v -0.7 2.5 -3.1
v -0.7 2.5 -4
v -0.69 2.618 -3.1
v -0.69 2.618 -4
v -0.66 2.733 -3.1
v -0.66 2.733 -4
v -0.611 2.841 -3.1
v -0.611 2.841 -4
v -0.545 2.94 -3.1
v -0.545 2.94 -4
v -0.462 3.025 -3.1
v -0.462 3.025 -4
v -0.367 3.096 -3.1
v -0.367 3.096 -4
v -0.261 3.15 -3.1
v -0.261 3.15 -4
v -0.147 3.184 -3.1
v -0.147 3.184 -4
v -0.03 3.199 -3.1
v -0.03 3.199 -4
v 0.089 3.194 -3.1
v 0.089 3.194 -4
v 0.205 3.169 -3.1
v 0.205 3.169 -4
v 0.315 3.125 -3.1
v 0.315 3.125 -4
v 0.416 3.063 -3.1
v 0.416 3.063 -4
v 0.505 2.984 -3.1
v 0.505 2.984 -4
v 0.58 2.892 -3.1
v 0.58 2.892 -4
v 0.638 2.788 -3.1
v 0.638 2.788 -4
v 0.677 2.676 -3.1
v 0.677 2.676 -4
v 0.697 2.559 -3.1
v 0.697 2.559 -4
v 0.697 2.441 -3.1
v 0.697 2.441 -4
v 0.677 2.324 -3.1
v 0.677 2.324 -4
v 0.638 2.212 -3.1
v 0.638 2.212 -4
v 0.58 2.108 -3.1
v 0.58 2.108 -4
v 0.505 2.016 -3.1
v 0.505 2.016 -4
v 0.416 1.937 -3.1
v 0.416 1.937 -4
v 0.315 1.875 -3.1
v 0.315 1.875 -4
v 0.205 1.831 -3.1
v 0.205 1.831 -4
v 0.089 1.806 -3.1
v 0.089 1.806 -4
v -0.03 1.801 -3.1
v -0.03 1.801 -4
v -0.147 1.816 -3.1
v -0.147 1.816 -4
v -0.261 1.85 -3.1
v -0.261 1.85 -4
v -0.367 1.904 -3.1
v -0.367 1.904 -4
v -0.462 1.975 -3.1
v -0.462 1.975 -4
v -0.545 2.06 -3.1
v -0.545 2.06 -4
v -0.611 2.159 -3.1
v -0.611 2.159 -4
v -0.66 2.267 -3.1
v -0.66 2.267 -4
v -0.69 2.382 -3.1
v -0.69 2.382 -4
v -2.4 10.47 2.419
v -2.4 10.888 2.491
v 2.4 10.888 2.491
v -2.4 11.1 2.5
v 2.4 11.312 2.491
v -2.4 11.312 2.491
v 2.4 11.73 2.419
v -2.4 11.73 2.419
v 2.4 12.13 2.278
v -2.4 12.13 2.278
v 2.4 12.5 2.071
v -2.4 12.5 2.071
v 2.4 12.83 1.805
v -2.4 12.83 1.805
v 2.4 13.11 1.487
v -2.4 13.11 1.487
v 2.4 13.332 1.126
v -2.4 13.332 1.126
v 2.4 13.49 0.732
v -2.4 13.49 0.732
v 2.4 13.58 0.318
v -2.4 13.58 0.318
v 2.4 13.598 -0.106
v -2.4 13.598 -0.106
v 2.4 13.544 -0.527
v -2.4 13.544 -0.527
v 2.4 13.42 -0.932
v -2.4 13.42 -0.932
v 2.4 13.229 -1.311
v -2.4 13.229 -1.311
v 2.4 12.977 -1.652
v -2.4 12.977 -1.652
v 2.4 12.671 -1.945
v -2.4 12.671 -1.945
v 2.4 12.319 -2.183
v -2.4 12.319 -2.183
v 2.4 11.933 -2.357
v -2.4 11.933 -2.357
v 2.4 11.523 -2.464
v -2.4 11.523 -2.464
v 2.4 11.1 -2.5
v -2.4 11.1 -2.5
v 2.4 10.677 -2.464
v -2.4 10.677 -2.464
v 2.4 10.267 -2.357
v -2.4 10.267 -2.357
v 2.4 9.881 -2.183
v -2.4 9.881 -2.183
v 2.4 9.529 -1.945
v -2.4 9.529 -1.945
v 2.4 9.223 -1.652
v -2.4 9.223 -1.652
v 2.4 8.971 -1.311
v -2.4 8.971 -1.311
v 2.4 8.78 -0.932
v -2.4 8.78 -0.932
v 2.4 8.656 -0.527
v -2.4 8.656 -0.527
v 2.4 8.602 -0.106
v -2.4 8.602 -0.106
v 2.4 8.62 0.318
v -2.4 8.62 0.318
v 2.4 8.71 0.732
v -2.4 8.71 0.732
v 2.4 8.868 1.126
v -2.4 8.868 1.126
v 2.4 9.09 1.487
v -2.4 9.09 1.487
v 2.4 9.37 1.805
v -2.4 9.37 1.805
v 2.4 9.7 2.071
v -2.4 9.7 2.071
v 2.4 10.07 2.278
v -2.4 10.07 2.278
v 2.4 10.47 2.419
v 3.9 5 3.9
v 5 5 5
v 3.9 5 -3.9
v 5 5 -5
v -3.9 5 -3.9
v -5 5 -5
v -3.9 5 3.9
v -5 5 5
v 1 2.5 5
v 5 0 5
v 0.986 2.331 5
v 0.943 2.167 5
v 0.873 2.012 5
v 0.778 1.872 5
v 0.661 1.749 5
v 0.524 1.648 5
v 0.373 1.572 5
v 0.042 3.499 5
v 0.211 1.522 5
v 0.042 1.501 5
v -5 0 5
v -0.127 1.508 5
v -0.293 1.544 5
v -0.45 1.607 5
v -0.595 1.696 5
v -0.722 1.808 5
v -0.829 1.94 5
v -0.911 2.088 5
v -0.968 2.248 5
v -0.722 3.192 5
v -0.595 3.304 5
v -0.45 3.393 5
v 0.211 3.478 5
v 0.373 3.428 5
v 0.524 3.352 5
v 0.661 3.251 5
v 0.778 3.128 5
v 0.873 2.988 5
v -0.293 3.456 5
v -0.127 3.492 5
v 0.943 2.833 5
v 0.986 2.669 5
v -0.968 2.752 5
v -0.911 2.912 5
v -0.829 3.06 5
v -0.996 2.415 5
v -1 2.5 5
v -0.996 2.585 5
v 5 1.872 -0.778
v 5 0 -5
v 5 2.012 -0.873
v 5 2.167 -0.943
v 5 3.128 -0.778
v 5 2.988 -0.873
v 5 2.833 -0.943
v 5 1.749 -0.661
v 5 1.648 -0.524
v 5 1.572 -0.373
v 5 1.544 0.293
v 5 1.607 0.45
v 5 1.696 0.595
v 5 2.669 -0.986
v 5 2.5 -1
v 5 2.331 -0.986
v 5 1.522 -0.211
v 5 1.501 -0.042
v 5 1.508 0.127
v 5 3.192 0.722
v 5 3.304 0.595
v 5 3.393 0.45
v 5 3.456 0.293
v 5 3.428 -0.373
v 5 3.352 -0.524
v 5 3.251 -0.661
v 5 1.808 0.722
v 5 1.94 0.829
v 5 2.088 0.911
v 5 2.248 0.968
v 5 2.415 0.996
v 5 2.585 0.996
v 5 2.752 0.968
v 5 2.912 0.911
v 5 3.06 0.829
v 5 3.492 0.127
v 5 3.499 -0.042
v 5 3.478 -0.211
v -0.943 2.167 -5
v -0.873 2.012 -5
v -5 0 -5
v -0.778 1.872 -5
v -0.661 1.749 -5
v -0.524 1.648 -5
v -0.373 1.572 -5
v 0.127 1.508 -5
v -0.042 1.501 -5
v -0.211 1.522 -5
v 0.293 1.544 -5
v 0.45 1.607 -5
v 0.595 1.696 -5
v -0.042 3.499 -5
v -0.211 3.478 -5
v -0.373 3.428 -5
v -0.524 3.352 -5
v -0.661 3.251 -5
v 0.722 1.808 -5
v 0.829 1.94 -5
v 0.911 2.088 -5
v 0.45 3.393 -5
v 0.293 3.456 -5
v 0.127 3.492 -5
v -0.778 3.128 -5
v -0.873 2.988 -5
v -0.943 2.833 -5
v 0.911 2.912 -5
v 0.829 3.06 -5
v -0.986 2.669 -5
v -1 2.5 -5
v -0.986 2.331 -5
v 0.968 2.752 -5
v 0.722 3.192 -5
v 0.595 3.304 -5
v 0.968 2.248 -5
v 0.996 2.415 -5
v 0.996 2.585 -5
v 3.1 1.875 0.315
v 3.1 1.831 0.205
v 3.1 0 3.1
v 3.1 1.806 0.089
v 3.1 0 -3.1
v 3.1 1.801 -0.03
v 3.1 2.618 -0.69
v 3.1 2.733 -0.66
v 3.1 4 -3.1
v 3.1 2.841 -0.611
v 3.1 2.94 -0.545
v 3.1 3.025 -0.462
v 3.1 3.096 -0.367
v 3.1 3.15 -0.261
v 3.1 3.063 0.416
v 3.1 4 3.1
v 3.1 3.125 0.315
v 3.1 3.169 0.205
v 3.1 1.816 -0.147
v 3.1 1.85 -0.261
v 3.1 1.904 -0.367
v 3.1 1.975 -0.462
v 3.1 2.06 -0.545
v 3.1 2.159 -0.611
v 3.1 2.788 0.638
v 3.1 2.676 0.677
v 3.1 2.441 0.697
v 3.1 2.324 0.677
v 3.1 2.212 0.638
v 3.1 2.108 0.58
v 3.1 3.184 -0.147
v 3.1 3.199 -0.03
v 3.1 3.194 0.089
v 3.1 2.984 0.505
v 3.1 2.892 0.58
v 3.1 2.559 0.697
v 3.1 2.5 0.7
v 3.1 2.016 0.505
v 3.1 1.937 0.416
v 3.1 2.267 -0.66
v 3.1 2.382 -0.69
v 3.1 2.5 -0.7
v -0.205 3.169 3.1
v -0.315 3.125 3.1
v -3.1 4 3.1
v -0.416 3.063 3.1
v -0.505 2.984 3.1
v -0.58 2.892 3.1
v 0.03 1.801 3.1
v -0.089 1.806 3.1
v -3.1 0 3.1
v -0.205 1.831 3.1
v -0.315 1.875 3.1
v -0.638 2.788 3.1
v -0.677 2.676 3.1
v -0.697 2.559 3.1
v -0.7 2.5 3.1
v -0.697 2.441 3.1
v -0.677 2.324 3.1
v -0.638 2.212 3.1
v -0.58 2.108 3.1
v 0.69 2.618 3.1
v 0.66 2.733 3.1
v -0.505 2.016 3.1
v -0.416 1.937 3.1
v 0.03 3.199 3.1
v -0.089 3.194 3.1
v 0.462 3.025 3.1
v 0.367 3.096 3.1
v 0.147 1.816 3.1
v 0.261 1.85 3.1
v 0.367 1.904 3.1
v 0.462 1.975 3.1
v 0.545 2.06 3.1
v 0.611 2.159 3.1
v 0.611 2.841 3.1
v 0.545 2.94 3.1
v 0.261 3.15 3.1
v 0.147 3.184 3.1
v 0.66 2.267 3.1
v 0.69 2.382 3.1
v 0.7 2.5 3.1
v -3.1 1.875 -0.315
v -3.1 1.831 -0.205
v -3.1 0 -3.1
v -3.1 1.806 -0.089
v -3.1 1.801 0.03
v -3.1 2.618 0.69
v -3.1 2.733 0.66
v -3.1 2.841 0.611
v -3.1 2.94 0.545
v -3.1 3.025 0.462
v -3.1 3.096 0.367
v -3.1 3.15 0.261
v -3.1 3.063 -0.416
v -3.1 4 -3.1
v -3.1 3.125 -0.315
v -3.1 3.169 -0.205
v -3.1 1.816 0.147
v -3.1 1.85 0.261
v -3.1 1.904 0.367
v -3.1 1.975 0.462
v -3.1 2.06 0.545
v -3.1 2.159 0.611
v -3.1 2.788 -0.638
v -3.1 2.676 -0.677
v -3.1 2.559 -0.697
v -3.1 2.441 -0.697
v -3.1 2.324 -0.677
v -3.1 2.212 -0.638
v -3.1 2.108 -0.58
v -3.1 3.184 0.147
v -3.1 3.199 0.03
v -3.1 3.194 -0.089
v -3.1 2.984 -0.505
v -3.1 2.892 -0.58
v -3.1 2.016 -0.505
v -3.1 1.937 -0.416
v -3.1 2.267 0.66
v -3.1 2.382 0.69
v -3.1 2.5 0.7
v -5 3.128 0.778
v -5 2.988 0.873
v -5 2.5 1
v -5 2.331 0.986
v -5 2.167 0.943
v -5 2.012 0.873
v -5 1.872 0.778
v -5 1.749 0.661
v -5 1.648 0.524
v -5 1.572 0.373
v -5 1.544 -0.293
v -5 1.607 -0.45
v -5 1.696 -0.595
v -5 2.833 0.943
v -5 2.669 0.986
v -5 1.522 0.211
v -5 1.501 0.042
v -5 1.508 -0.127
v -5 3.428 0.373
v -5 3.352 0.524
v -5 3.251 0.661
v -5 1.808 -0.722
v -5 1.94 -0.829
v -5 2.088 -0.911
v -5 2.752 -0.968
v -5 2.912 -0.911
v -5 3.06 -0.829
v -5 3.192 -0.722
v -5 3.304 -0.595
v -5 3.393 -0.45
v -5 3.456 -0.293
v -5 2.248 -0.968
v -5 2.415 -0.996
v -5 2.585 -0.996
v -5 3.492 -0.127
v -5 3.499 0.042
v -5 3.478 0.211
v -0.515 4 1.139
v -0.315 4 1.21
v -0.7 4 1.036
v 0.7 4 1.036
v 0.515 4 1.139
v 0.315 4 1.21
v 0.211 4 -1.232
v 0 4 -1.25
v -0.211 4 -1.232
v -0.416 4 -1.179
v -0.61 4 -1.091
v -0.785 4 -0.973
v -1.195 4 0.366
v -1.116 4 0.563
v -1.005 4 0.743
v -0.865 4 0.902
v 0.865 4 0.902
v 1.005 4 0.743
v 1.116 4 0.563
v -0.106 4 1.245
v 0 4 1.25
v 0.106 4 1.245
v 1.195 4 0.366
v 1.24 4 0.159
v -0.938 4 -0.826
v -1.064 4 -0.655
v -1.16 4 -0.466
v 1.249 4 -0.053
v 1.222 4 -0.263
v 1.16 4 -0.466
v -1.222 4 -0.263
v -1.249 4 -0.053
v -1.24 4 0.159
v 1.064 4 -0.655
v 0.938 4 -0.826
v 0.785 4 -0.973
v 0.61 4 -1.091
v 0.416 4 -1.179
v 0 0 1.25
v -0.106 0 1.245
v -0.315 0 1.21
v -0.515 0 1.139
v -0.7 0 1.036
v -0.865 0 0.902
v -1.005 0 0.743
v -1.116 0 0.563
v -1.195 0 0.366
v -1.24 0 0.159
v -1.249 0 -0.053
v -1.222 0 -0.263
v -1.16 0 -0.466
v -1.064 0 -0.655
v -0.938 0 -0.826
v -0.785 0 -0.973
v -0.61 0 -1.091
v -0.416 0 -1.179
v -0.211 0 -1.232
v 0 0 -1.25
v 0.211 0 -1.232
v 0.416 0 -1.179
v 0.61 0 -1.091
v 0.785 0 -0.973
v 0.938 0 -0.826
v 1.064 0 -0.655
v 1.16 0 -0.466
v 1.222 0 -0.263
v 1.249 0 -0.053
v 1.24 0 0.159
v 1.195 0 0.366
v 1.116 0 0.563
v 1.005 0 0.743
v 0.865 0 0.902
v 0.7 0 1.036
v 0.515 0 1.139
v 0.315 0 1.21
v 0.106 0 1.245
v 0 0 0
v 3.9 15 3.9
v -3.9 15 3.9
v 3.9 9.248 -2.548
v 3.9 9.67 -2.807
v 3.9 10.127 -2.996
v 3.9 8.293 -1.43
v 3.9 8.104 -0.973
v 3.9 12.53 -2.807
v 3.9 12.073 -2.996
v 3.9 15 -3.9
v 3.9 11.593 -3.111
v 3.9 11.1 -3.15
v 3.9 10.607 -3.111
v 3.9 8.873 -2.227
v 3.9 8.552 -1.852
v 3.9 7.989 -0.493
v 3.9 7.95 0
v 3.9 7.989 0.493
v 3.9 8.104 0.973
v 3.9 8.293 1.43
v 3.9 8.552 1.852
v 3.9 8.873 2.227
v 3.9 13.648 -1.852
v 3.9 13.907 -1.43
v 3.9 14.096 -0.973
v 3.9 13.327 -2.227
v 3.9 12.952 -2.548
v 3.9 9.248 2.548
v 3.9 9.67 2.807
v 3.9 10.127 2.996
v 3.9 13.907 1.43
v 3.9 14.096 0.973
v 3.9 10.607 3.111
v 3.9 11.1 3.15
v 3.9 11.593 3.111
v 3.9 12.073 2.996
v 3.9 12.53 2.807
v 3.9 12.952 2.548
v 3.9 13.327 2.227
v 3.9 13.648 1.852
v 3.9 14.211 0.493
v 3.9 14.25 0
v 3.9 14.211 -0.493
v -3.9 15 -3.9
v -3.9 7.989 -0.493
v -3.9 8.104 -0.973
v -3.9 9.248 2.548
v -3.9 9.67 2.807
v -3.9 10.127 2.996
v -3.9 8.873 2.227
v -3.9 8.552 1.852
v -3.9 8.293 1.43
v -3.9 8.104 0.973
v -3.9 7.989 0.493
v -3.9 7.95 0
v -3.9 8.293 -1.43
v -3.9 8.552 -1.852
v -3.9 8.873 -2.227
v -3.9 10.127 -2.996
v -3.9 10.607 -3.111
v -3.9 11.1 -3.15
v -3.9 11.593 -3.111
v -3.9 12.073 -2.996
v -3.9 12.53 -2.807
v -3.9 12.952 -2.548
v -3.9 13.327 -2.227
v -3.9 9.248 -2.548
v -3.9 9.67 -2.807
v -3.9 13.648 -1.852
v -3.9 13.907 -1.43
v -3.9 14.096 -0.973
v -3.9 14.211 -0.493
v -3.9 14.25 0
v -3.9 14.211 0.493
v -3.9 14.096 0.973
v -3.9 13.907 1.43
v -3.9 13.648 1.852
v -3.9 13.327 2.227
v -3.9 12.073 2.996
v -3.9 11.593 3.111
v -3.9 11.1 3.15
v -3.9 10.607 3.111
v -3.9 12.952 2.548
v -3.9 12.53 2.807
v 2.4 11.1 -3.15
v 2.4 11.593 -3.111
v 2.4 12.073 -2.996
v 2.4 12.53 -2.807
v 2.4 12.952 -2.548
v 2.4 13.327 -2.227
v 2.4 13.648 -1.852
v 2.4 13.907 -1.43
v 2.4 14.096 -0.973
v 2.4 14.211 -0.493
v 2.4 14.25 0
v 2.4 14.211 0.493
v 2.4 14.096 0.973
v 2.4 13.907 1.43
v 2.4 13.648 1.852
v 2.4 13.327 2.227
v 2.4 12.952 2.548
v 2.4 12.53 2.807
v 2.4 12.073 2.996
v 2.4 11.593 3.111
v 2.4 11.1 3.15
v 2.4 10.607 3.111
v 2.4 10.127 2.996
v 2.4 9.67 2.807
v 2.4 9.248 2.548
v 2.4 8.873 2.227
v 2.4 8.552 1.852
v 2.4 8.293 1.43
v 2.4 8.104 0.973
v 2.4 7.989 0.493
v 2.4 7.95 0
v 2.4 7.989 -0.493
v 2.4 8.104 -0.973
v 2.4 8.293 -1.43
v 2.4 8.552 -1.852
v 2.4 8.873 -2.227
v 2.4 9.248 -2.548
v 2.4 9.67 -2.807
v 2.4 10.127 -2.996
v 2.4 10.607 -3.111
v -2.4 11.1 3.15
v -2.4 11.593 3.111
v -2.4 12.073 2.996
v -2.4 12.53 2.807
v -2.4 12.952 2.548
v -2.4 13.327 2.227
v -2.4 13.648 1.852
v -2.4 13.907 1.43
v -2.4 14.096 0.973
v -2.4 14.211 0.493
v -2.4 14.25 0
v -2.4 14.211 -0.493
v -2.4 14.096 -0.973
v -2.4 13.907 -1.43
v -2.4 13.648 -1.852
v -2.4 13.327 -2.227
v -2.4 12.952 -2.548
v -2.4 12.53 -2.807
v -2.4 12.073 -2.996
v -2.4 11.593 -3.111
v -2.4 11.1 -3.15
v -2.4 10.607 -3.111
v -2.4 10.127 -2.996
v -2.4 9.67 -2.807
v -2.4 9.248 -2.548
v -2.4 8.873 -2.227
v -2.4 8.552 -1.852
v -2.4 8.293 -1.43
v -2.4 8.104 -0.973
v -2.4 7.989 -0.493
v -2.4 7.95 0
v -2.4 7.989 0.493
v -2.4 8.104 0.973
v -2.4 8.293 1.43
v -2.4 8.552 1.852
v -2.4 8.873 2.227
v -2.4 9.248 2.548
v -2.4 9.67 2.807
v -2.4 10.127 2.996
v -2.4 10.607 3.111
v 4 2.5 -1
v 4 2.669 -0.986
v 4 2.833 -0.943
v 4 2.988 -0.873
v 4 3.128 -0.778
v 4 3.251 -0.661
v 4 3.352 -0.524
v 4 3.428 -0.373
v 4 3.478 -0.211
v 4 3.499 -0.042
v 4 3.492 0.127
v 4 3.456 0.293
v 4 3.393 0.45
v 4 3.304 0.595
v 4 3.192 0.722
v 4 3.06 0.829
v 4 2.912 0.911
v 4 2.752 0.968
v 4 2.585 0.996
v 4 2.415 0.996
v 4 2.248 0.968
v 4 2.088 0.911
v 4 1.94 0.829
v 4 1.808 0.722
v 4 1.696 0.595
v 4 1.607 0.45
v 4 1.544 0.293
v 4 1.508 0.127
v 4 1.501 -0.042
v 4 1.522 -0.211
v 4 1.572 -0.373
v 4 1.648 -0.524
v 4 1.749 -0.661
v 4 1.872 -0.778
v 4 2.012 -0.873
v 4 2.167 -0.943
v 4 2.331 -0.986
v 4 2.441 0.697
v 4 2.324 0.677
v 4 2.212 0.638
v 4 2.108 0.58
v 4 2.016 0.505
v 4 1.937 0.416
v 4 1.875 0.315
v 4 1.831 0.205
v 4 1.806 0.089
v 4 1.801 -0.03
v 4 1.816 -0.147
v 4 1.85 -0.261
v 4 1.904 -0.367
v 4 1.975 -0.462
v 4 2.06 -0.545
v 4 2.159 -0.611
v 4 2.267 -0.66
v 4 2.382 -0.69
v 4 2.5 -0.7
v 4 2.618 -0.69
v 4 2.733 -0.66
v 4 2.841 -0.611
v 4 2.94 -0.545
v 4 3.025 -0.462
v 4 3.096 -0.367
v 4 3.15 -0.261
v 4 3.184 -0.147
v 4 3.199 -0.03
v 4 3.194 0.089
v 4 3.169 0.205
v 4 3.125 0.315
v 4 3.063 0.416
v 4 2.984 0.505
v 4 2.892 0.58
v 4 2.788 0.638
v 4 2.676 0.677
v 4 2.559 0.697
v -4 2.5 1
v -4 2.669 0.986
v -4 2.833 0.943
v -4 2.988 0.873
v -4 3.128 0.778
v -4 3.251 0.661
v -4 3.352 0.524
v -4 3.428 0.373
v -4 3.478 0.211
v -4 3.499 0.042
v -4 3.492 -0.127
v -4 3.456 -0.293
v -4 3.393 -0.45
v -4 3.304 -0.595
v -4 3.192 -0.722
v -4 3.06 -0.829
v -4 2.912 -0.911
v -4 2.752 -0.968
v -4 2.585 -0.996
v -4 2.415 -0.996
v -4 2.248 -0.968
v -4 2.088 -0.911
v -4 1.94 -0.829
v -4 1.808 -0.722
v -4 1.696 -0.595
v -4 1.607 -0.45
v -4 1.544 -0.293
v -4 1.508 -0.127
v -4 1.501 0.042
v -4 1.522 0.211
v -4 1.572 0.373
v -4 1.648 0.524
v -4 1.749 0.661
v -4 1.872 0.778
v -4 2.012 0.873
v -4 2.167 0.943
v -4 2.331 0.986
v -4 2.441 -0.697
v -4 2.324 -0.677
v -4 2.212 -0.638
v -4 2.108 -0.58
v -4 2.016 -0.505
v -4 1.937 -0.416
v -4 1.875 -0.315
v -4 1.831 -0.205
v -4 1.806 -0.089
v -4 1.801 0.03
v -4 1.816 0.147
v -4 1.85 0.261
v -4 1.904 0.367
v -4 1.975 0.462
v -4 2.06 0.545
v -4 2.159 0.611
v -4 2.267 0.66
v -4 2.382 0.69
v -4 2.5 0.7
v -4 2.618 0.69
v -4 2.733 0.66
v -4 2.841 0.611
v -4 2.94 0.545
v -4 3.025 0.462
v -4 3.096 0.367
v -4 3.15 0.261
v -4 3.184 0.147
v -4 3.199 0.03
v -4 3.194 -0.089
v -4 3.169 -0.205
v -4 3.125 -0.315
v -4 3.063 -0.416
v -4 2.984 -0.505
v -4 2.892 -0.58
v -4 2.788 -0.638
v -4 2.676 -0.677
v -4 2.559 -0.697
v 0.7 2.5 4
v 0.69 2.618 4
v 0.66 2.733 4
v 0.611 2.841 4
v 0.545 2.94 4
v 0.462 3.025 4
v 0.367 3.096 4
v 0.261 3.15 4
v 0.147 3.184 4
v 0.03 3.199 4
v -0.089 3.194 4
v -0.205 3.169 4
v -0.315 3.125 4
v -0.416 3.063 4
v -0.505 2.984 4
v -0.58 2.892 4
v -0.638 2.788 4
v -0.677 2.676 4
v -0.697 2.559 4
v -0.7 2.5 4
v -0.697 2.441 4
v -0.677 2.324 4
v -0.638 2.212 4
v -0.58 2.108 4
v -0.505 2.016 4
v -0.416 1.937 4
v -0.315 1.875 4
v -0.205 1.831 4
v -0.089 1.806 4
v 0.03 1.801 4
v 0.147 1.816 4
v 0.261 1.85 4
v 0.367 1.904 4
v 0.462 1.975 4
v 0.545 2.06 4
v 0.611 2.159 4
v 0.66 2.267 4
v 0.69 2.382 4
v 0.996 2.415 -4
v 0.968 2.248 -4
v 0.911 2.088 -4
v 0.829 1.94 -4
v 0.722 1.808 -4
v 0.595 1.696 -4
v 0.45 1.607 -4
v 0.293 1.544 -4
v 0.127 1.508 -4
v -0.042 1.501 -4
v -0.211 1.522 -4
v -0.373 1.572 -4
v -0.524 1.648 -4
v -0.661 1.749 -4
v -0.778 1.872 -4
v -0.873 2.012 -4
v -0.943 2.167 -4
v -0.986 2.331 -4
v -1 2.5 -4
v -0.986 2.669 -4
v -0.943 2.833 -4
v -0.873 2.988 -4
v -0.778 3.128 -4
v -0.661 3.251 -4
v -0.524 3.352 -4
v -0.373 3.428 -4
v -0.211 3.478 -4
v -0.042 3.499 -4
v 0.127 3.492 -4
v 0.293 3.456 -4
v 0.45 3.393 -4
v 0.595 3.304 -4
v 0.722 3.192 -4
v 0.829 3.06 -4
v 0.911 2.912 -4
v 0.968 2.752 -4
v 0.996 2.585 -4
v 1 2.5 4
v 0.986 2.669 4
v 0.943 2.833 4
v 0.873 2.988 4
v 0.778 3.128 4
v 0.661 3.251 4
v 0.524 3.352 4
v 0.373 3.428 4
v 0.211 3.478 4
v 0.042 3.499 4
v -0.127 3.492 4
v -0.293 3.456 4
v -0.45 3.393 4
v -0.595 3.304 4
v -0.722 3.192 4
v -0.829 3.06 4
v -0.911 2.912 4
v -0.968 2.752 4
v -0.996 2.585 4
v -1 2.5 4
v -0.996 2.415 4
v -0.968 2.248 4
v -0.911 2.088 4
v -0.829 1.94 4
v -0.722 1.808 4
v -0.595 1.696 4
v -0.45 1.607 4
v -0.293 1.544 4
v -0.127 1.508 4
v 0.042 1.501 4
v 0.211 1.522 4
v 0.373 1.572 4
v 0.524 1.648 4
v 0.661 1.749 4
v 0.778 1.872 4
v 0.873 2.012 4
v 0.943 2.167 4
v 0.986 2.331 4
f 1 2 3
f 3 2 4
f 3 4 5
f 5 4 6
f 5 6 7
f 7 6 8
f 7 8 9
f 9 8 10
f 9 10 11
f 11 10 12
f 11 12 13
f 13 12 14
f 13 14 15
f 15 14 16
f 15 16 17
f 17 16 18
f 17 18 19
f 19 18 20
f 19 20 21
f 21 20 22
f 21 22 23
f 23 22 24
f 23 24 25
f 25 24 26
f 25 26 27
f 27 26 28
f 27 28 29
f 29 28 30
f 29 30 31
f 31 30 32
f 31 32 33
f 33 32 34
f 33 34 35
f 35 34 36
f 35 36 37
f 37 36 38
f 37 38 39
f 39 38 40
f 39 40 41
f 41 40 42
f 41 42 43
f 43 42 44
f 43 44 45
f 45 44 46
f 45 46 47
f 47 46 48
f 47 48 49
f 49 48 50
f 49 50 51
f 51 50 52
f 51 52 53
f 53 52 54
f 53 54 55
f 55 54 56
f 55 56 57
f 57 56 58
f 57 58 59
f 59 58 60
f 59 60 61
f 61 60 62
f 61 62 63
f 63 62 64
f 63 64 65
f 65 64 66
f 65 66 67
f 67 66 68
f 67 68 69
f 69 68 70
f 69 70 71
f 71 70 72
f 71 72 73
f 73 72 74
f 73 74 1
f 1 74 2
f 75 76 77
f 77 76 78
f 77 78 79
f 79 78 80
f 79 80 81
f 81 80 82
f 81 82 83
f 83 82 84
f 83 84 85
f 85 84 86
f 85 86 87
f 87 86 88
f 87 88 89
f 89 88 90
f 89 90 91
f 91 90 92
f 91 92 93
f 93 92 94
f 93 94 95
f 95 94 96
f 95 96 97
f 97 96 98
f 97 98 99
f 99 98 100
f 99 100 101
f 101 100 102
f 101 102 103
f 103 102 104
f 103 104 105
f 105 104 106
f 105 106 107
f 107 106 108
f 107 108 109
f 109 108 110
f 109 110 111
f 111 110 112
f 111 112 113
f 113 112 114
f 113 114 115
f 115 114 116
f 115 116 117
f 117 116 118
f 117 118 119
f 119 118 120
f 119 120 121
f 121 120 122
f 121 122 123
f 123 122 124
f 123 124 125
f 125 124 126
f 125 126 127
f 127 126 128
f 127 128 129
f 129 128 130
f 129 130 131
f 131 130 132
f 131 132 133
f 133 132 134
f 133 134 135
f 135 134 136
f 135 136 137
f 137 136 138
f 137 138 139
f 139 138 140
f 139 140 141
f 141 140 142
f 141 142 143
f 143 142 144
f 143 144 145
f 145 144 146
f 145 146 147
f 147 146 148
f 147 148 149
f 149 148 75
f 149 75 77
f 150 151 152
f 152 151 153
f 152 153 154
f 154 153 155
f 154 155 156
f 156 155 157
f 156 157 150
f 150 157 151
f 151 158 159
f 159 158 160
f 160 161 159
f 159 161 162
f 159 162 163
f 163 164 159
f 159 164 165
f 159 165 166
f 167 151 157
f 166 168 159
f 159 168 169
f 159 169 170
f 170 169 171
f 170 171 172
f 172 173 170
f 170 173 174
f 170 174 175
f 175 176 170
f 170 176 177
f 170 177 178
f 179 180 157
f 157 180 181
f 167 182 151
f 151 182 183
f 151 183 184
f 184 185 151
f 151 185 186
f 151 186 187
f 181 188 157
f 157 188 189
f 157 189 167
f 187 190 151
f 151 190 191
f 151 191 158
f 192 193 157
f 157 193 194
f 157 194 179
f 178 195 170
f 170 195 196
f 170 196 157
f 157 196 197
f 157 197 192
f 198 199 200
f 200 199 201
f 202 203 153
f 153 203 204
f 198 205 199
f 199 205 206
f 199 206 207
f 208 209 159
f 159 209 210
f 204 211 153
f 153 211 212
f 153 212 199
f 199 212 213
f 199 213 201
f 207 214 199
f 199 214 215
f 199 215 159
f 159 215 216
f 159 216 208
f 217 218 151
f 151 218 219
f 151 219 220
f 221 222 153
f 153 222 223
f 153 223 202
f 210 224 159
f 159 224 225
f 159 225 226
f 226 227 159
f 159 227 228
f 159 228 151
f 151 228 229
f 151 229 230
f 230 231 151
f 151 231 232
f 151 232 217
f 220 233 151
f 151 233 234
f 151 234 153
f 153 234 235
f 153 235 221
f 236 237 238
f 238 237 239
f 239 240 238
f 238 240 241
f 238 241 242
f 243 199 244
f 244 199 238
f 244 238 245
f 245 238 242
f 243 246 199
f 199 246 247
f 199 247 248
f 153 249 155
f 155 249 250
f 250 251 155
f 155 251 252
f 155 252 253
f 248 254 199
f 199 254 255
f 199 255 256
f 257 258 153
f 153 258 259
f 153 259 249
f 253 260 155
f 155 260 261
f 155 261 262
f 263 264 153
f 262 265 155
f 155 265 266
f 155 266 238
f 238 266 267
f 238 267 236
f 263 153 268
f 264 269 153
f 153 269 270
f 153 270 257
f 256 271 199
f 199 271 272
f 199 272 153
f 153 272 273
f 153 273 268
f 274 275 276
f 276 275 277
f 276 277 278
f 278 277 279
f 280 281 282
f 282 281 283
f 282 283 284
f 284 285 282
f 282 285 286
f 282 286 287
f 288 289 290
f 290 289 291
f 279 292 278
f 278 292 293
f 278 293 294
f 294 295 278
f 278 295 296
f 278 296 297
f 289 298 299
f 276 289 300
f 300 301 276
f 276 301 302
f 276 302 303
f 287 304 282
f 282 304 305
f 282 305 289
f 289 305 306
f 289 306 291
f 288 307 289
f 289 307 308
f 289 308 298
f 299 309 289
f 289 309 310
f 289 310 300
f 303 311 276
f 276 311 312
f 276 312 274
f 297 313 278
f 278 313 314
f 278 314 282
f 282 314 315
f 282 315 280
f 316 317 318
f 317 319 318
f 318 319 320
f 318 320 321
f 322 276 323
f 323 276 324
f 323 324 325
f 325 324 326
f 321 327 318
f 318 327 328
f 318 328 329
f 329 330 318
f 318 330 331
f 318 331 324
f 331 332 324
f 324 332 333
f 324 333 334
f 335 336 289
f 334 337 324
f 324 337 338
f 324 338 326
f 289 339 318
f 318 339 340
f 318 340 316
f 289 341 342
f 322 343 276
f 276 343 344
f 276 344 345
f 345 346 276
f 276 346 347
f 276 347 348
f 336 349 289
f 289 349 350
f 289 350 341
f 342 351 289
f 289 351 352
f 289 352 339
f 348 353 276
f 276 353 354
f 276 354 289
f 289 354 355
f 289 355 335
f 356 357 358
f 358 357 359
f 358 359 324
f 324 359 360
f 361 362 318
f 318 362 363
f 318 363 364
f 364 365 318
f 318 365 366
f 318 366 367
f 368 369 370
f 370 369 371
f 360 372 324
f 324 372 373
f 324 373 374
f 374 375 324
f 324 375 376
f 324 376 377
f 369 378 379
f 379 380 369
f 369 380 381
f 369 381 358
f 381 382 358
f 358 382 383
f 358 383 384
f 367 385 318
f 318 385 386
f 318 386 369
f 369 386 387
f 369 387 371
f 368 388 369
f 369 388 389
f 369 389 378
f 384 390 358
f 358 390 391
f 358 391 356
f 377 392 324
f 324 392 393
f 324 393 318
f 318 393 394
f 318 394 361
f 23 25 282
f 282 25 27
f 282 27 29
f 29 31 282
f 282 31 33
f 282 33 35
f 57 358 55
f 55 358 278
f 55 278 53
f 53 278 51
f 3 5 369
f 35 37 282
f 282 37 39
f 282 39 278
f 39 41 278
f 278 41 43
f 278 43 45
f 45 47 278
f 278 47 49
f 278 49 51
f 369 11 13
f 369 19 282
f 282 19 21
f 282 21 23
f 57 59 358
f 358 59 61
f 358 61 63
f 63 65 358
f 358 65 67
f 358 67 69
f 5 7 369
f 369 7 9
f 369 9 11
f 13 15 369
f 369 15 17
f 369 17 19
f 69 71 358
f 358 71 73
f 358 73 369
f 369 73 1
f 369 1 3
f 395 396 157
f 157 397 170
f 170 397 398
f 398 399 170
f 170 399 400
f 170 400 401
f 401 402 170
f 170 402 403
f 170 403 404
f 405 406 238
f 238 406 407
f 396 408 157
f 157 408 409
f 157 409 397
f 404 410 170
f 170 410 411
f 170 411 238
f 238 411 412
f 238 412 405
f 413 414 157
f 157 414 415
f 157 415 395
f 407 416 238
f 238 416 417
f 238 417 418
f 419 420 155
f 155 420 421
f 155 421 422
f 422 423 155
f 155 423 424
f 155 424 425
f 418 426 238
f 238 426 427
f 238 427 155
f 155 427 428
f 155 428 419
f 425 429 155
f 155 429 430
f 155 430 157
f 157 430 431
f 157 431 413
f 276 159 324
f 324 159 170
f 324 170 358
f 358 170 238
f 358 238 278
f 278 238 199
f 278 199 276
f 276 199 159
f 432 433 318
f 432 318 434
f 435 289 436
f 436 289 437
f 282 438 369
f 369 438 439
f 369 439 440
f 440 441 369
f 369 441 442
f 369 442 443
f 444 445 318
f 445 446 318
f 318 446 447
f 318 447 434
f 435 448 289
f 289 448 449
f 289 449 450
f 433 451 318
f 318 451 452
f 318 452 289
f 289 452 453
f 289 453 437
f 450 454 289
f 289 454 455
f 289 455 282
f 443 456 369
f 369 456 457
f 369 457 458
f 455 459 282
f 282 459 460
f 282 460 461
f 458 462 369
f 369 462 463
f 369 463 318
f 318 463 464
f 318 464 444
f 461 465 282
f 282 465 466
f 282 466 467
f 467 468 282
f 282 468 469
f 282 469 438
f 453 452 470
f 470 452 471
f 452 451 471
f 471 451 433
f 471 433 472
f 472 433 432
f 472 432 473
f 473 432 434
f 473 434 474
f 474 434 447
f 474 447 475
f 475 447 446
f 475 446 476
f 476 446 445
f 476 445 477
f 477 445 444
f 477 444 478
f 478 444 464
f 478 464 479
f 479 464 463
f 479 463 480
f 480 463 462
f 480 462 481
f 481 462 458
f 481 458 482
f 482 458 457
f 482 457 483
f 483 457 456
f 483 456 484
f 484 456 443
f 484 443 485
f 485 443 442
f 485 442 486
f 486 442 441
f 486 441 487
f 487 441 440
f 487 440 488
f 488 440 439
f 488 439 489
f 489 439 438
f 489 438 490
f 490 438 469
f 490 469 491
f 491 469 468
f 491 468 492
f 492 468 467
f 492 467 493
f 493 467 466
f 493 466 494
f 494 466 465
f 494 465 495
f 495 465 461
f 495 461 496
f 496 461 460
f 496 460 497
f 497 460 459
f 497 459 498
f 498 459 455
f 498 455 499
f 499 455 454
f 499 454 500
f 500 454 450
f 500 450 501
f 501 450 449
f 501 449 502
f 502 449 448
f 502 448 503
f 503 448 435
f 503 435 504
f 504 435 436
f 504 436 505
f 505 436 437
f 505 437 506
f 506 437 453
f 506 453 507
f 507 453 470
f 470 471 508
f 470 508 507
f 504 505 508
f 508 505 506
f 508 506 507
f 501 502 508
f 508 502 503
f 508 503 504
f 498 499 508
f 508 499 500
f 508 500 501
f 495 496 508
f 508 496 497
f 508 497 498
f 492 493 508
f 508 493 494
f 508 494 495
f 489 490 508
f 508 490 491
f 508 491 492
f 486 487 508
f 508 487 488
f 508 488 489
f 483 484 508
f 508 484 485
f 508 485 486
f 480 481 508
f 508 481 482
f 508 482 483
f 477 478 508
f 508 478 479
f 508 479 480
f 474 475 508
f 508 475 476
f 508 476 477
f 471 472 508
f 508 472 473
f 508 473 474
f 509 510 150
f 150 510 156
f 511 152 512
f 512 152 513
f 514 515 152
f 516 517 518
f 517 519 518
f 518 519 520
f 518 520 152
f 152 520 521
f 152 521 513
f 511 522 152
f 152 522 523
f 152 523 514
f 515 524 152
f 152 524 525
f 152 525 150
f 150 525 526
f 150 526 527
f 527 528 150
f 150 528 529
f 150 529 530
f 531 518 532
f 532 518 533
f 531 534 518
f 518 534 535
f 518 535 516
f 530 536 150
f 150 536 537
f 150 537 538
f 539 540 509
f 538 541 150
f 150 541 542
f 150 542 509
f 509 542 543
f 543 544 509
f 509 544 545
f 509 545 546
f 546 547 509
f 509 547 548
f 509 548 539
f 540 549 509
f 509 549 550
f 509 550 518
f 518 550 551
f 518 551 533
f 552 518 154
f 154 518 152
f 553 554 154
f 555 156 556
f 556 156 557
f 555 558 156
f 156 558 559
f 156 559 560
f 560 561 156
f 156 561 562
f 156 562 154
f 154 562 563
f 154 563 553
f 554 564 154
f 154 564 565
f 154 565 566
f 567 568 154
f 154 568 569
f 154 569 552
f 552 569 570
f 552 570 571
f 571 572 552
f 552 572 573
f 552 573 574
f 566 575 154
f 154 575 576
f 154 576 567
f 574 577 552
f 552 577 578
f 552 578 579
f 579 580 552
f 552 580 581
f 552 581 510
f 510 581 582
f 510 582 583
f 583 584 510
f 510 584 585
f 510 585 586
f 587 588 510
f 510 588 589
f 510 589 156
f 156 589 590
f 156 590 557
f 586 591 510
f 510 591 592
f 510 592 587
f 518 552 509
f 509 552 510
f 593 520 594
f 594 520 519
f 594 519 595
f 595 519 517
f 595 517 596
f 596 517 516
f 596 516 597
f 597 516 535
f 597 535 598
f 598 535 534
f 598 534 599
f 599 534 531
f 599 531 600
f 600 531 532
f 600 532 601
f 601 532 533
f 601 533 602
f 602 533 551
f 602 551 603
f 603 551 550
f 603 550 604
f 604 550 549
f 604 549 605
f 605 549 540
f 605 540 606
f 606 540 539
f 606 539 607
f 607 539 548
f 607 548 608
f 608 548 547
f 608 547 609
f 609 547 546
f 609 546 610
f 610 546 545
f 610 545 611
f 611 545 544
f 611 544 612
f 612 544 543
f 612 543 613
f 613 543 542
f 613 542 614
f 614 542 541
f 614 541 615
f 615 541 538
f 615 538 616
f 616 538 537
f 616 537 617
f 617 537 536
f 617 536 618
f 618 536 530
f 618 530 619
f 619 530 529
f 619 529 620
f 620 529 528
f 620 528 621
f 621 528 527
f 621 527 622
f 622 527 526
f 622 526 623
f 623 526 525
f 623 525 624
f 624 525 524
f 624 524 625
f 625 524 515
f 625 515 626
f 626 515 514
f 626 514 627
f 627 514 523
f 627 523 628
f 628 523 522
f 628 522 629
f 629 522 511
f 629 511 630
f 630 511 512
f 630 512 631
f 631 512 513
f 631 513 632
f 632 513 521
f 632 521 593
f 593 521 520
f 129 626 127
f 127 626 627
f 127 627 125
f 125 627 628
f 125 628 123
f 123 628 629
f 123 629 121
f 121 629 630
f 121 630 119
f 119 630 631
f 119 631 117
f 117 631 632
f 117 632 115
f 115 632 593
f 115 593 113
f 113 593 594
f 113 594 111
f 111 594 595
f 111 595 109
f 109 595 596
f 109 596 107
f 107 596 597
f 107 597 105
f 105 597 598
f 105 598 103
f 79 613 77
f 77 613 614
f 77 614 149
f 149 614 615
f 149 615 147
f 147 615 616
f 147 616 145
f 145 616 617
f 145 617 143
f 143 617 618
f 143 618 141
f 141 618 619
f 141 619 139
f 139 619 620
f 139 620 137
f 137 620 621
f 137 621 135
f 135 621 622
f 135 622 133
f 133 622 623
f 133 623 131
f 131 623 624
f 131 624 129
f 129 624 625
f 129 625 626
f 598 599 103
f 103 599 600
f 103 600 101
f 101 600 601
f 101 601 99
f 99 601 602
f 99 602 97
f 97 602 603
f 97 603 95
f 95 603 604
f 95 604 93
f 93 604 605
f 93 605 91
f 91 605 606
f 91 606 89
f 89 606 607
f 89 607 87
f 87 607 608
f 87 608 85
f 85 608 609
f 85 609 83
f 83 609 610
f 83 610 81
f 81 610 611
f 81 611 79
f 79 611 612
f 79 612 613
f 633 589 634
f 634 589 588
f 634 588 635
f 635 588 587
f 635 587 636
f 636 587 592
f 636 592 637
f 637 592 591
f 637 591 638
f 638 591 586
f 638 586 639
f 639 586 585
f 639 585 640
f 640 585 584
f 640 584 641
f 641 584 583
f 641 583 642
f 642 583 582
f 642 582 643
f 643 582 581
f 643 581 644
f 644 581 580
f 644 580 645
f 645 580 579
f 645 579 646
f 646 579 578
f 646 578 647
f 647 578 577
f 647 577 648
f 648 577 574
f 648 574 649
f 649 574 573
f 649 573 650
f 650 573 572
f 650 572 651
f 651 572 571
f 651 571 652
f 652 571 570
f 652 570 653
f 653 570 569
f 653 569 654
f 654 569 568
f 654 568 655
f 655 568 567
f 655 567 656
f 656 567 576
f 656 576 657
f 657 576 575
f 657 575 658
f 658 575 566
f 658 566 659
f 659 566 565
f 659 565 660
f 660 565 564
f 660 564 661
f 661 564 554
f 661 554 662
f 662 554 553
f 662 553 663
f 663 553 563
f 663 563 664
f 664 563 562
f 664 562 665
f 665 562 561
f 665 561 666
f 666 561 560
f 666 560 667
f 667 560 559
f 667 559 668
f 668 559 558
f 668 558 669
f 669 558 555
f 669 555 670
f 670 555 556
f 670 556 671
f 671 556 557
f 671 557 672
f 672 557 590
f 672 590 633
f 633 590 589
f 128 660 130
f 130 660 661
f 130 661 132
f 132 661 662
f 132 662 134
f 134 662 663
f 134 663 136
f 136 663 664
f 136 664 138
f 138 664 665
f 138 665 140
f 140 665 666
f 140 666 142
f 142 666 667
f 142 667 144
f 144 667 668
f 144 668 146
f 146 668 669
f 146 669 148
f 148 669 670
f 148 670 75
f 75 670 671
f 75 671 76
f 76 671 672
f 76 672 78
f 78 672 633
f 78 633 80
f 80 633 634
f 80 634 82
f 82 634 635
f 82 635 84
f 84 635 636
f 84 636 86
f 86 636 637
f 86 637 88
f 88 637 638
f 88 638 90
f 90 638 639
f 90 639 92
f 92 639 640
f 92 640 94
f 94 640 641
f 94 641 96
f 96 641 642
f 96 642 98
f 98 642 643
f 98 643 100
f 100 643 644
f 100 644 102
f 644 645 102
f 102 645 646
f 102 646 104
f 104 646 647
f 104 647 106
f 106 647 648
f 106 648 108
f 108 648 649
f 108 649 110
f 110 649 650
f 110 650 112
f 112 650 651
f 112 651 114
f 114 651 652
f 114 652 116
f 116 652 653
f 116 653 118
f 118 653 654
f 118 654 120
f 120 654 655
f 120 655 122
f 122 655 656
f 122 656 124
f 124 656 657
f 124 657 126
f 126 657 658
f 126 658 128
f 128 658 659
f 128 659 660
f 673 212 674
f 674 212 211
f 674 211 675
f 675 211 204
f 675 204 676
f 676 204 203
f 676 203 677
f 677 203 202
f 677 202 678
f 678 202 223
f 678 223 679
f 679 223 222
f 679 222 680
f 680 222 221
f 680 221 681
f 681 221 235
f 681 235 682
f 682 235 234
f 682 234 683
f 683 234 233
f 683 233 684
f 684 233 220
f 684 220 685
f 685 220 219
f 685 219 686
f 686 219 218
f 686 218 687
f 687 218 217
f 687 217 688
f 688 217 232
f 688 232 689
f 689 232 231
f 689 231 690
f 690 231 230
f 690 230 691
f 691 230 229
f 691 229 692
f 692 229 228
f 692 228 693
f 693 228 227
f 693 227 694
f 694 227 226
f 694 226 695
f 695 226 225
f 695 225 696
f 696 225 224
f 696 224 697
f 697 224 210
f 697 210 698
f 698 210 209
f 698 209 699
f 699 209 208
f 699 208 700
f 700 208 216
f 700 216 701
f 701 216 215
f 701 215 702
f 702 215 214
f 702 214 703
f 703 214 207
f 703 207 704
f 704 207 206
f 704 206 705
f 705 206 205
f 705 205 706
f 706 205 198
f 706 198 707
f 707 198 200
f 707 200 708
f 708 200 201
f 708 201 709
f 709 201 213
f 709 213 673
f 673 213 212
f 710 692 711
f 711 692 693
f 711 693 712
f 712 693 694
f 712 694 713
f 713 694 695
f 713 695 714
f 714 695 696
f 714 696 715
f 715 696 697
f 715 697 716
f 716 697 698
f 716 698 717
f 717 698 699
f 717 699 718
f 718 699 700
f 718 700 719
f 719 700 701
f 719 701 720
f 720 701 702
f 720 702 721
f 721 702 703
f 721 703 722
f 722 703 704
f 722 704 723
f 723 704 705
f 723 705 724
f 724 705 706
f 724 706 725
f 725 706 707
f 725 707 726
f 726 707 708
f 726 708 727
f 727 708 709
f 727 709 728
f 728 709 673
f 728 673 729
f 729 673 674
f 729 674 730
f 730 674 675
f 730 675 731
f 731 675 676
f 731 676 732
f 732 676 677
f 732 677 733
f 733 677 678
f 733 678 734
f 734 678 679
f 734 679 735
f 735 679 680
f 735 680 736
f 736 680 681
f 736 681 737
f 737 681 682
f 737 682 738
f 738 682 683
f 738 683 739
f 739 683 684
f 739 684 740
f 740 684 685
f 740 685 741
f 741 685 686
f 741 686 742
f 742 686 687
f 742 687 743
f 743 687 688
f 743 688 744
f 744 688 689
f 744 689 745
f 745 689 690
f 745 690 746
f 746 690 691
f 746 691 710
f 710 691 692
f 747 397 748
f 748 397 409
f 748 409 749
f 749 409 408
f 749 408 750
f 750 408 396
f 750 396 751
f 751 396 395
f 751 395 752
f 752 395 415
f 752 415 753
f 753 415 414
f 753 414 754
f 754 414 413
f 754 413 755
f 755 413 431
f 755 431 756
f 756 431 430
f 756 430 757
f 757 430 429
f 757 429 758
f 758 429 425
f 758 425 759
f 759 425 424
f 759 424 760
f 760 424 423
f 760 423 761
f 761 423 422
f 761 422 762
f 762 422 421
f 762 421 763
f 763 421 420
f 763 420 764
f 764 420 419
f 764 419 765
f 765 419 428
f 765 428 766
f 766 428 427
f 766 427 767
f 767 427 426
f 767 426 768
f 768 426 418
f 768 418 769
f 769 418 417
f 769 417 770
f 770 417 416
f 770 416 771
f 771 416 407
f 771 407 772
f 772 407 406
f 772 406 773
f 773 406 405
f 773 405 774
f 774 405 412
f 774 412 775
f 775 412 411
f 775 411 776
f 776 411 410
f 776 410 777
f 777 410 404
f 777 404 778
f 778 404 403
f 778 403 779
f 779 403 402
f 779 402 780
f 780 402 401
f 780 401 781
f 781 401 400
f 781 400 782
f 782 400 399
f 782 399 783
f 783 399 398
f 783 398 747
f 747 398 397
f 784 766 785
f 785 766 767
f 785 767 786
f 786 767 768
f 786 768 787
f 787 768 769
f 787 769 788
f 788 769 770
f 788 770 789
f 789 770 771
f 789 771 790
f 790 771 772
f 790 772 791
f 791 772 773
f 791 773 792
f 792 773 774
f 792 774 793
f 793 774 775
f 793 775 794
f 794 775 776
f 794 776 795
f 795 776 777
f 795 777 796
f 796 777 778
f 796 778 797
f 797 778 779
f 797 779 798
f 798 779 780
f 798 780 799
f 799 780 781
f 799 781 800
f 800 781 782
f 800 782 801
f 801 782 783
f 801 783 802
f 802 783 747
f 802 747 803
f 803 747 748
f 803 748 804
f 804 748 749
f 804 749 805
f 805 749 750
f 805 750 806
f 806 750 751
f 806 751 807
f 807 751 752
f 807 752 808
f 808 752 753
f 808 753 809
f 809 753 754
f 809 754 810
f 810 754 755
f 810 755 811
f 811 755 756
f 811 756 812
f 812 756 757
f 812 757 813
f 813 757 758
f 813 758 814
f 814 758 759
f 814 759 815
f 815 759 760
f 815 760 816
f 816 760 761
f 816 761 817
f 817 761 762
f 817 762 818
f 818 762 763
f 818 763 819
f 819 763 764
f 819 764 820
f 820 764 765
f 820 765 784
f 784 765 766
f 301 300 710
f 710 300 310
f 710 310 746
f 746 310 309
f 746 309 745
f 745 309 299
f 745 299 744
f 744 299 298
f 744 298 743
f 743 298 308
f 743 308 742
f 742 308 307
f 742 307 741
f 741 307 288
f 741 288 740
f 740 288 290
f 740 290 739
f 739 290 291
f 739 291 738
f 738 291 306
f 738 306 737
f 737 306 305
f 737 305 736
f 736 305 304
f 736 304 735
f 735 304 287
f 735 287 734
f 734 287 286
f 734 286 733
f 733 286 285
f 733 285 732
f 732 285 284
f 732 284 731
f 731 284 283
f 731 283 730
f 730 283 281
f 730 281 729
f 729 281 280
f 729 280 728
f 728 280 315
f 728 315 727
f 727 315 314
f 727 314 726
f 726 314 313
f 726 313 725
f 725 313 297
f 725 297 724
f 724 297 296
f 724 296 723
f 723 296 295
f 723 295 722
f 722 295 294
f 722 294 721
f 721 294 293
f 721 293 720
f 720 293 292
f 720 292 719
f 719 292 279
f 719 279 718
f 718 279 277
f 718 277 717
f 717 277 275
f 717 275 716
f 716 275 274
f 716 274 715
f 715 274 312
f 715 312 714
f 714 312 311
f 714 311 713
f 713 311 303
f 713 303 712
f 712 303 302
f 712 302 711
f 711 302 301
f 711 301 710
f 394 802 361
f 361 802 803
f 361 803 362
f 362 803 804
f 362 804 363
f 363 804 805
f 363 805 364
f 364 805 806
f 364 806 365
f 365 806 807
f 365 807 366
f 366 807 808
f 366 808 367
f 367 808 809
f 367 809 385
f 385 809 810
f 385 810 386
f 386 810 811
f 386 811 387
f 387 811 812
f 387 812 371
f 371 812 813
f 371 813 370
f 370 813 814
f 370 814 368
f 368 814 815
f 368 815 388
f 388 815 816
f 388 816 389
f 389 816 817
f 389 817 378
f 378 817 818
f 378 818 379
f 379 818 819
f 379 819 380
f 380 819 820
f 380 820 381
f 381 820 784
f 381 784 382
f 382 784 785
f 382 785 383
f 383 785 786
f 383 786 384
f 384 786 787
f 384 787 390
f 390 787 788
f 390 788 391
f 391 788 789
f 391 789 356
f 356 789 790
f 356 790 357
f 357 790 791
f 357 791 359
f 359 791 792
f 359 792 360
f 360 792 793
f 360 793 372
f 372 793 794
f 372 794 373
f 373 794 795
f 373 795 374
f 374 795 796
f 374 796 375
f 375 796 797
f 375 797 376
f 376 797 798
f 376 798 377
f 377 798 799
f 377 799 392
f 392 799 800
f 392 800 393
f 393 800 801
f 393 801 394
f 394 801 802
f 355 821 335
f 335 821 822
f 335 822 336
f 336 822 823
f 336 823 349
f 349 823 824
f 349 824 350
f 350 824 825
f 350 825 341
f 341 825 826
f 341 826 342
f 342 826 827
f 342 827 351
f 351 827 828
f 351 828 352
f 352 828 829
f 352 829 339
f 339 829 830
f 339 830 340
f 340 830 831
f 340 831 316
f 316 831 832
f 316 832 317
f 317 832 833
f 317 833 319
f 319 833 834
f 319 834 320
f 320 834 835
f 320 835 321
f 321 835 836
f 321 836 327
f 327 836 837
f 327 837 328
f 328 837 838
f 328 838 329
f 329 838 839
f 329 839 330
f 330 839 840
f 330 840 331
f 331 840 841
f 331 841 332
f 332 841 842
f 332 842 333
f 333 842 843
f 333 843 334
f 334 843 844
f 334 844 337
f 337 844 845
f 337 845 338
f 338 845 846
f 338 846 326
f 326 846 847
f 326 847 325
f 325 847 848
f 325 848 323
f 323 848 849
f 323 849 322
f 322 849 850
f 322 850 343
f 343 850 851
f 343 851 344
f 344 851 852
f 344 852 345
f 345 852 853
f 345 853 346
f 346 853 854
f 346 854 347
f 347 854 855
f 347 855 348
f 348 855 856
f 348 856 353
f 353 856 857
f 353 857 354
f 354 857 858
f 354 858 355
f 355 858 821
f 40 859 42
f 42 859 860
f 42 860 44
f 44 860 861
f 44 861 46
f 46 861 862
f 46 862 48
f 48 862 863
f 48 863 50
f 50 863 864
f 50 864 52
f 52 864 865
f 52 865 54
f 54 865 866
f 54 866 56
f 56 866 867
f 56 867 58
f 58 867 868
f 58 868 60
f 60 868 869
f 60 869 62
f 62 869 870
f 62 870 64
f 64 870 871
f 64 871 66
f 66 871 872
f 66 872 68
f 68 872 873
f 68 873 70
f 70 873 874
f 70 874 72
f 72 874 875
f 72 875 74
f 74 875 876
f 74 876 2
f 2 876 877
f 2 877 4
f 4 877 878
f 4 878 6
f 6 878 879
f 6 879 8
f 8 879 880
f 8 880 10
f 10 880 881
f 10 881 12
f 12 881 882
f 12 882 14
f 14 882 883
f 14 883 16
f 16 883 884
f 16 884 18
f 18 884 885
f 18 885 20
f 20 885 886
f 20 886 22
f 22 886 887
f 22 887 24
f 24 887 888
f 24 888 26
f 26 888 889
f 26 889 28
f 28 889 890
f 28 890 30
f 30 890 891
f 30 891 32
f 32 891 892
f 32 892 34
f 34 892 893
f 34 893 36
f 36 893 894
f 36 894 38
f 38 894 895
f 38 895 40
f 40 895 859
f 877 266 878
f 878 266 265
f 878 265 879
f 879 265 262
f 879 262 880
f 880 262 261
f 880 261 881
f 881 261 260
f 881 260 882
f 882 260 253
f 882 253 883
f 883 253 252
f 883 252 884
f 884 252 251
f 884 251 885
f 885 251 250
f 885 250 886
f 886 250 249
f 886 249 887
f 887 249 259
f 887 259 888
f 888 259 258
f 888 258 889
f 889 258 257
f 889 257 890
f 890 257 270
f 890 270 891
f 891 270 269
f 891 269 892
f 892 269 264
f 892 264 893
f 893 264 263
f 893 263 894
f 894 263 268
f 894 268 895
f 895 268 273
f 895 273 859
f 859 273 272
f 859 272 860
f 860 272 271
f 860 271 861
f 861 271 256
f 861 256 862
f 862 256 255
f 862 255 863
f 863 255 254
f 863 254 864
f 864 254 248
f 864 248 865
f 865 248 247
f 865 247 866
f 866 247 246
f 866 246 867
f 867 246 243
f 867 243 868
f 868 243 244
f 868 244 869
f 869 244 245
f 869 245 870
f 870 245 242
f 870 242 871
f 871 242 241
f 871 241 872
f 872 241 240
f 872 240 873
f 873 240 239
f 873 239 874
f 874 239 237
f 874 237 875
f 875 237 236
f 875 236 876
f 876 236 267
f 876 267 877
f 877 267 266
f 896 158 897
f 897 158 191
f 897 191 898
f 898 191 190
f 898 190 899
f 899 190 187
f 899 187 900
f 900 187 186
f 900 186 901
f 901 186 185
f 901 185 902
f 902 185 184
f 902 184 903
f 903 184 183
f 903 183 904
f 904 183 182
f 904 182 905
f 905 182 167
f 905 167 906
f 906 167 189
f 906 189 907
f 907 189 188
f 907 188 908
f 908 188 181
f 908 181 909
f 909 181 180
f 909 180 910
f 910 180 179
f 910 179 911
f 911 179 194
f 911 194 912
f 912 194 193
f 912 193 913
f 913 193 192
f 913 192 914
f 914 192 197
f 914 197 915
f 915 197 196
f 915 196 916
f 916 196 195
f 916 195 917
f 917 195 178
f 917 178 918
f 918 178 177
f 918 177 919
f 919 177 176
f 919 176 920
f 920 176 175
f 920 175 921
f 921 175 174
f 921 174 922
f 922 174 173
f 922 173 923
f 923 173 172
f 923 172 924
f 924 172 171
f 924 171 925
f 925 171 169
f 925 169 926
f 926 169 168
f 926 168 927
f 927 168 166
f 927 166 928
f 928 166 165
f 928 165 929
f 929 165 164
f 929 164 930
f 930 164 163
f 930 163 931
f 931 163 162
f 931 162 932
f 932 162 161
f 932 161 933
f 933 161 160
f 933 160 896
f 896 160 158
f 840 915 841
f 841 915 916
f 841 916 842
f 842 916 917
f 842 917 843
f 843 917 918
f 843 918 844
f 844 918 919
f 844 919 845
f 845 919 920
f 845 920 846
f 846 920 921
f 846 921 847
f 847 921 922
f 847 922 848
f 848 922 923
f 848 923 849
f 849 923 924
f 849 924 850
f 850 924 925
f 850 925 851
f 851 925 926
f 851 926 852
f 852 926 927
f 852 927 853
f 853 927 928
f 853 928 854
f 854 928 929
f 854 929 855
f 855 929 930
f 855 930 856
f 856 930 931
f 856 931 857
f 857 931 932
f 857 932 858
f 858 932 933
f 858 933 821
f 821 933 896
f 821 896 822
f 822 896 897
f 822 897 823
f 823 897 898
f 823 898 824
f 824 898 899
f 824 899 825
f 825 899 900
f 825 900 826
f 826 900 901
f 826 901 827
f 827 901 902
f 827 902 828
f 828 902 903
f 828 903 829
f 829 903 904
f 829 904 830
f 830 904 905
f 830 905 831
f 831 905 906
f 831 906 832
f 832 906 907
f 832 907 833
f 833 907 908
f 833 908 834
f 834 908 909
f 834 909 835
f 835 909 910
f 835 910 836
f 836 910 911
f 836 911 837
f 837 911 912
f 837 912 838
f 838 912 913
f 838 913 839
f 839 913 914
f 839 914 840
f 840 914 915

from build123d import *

# Parameters (mm, degrees)
SKETCH_1_W           = 10
SKETCH_1_H           = 10
SKETCH_1_W_2         = 6.2
SKETCH_1_H_2         = 6.2
EXTRUDE_1_DEPTH      = 4
SKETCH_1_R           = 1.25
EXTRUDE_1_2_DEPTH    = 4
EXTRUDE_START        = 4
SKETCH_1_3_W         = 10
SKETCH_1_3_H         = 10
EXTRUDE_2_DEPTH      = 1
SKETCH_2_W           = 7.8
SKETCH_2_H           = 7.8
EXTRUDE_3_DEPTH      = 10
SKETCH_3_R           = 2.5
CUT_EXTRUDE_1_DEPTH  = 19.144145061
SKETCH_3_3_R         = 3.15
SKETCH_3_3_R_2       = 2.5
CUT_EXTRUDE_2_DEPTH  = 1.5
CUT_EXTRUDE_START    = -6.3
SKETCH_3_4_R         = 3.15
SKETCH_3_4_R_2       = 2.5
CUT_EXTRUDE_3_DEPTH  = 1.5
SKETCH_4_R           = 1
SKETCH_4_R_2         = 0.7
CUT_EXTRUDE_4_DEPTH  = 1
CUT_EXTRUDE_START_2  = -9
SKETCH_4_2_R         = 1
SKETCH_4_2_R_2       = 0.7
CUT_EXTRUDE_5_DEPTH  = 1
CUT_EXTRUDE_6_REACH  = 20.708
SKETCH_4_3_R         = 0.7
CUT_EXTRUDE_START_3  = -10
SKETCH_4_4_R         = 0.7
CUT_EXTRUDE_7_DEPTH  = 1.9
CUT_EXTRUDE_8_REACH  = 20.708
SKETCH_5_R           = 0.7
SKETCH_5_3_R         = 0.7
CUT_EXTRUDE_9_DEPTH  = 1.9
SKETCH_5_4_R         = 1
CUT_EXTRUDE_10_DEPTH = 1
SKETCH_5_5_R         = 1
CUT_EXTRUDE_11_DEPTH = 1


with BuildPart() as part:
    # 草图1 → 凸台-拉伸1 (new body)
    with BuildSketch(Plane(origin=(0, 0, 0), x_dir=(1, 0, 0), z_dir=(0, 1, 0))):
        Rectangle(SKETCH_1_W, SKETCH_1_H)
        Rectangle(SKETCH_1_W_2, SKETCH_1_H_2, mode=Mode.SUBTRACT)
    extrude(amount=EXTRUDE_1_DEPTH)



with BuildPart() as body_2:
    # 草图1 → Extrude 1 2 (new body)
    with BuildSketch(Plane(origin=(0, 0, 0), x_dir=(1, 0, 0), z_dir=(0, 1, 0))):
        with Locations(Location((0, 0, 0), (0, 0, 270))):
            Circle(SKETCH_1_R)
    extrude(amount=EXTRUDE_1_2_DEPTH)


with BuildPart() as part_1:
    add(part.part)

    add(body_2.part)  # 凸台-拉伸2 merges body 2
    # 草图1<3> → 凸台-拉伸2 (add)
    with BuildSketch(Plane(origin=(0, 0, 0), x_dir=(1, 0, 0), z_dir=(0, 1, 0)).offset(EXTRUDE_START)):
        Rectangle(SKETCH_1_3_W, SKETCH_1_3_H)
    extrude(amount=EXTRUDE_2_DEPTH)

    # 草图2 → 凸台-拉伸3 (add)
    with BuildSketch(Plane(origin=(0, 5, 0), x_dir=(1, 0, 0), z_dir=(0, 1, 0))):
        Rectangle(SKETCH_2_W, SKETCH_2_H)
    extrude(amount=EXTRUDE_3_DEPTH)

    # 草图3 → 切除-拉伸1 (cut, through all)
    with BuildSketch(Plane(origin=(3.9, 0, 0), x_dir=(0, 0, -1), z_dir=(1, 0, 0))):
        with Locations((0, 11.1)):
            Circle(SKETCH_3_R)
    extrude(amount=-CUT_EXTRUDE_1_DEPTH, mode=Mode.SUBTRACT)

    # 草图3<3> → 切除-拉伸2 (cut)
    with BuildSketch(Plane(origin=(3.9, 0, 0), x_dir=(0, 0, -1), z_dir=(1, 0, 0))):
        with Locations((0, 11.1)):
            Circle(SKETCH_3_3_R)
        with Locations((0, 11.1)):
            Circle(SKETCH_3_3_R_2, mode=Mode.SUBTRACT)
    extrude(amount=-CUT_EXTRUDE_2_DEPTH, mode=Mode.SUBTRACT)

    # 草图3<4> → 切除-拉伸3 (cut)
    with BuildSketch(Plane(origin=(3.9, 0, 0), x_dir=(0, 0, -1), z_dir=(1, 0, 0)).offset(CUT_EXTRUDE_START)):
        with Locations((0, 11.1)):
            Circle(SKETCH_3_4_R)
        with Locations((0, 11.1)):
            Circle(SKETCH_3_4_R_2, mode=Mode.SUBTRACT)
    extrude(amount=-CUT_EXTRUDE_3_DEPTH, mode=Mode.SUBTRACT)

    # 草图4 → 切除-拉伸4 (cut)
    with BuildSketch(Plane(origin=(5, 0, 0), x_dir=(0, 0, -1), z_dir=(1, 0, 0))):
        with Locations((0, 2.5)):
            Circle(SKETCH_4_R)
        with Locations((0, 2.5)):
            Circle(SKETCH_4_R_2, mode=Mode.SUBTRACT)
    extrude(amount=-CUT_EXTRUDE_4_DEPTH, mode=Mode.SUBTRACT)

    # 草图4<2> → 切除-拉伸5 (cut)
    with BuildSketch(Plane(origin=(5, 0, 0), x_dir=(0, 0, -1), z_dir=(1, 0, 0)).offset(CUT_EXTRUDE_START_2)):
        with Locations((0, 2.5)):
            Circle(SKETCH_4_2_R)
        with Locations((0, 2.5)):
            Circle(SKETCH_4_2_R_2, mode=Mode.SUBTRACT)
    extrude(amount=-CUT_EXTRUDE_5_DEPTH, mode=Mode.SUBTRACT)

    # 草图4<3> → 切除-拉伸6 (cut, up to next)
    with BuildSketch(Plane(origin=(5, 0, 0), x_dir=(0, 0, -1), z_dir=(1, 0, 0)), mode=Mode.PRIVATE) as cut_extrude_6_sk1:
        with Locations(Location((0, 2.5, 0), (0, 0, 180))):
            Circle(SKETCH_4_3_R)
    cut_extrude_6_tool1 = extrude(cut_extrude_6_sk1.sketch, amount=-CUT_EXTRUDE_6_REACH, mode=Mode.PRIVATE) & part_1.part
    add(cut_extrude_6_tool1.solids().sort_by_distance((5, 2.5, 0))[0], mode=Mode.SUBTRACT)

    # 草图4<4> → 切除-拉伸7 (cut)
    with BuildSketch(Plane(origin=(5, 0, 0), x_dir=(0, 0, -1), z_dir=(1, 0, 0)).offset(CUT_EXTRUDE_START_3)):
        with Locations((0, 2.5)):
            Circle(SKETCH_4_4_R)
    extrude(amount=CUT_EXTRUDE_7_DEPTH, mode=Mode.SUBTRACT)

    # 草图5 → 切除-拉伸8 (cut, up to next)
    with BuildSketch(Plane(origin=(0, 0, -5), x_dir=(-1, 0, 0), z_dir=(0, 0, -1)), mode=Mode.PRIVATE) as cut_extrude_8_sk1:
        with Locations((0, 2.5)):
            Circle(SKETCH_5_R)
    cut_extrude_8_tool1 = extrude(cut_extrude_8_sk1.sketch, amount=-CUT_EXTRUDE_8_REACH, mode=Mode.PRIVATE) & part_1.part
    add(cut_extrude_8_tool1.solids().sort_by_distance((0, 2.5, -5))[0], mode=Mode.SUBTRACT)

    # 草图5<3> → 切除-拉伸9 (cut)
    with BuildSketch(Plane(origin=(0, 0, -5), x_dir=(-1, 0, 0), z_dir=(0, 0, -1)).offset(CUT_EXTRUDE_START_3)):
        with Locations((0, 2.5)):
            Circle(SKETCH_5_3_R)
    extrude(amount=CUT_EXTRUDE_9_DEPTH, mode=Mode.SUBTRACT)

    # 草图5<4> → 切除-拉伸10 (cut)
    with BuildSketch(Plane(origin=(0, 0, -5), x_dir=(-1, 0, 0), z_dir=(0, 0, -1))):
        with Locations((0, 2.5)):
            Circle(SKETCH_5_4_R)
    extrude(amount=-CUT_EXTRUDE_10_DEPTH, mode=Mode.SUBTRACT)

    # 草图5<5> → 切除-拉伸11 (cut)
    with BuildSketch(Plane(origin=(0, 0, -5), x_dir=(-1, 0, 0), z_dir=(0, 0, -1)).offset(CUT_EXTRUDE_START_2)):
        with Locations((0, 2.5)):
            Circle(SKETCH_5_5_R)
    extrude(amount=-CUT_EXTRUDE_11_DEPTH, mode=Mode.SUBTRACT)


solid = part_1.part
